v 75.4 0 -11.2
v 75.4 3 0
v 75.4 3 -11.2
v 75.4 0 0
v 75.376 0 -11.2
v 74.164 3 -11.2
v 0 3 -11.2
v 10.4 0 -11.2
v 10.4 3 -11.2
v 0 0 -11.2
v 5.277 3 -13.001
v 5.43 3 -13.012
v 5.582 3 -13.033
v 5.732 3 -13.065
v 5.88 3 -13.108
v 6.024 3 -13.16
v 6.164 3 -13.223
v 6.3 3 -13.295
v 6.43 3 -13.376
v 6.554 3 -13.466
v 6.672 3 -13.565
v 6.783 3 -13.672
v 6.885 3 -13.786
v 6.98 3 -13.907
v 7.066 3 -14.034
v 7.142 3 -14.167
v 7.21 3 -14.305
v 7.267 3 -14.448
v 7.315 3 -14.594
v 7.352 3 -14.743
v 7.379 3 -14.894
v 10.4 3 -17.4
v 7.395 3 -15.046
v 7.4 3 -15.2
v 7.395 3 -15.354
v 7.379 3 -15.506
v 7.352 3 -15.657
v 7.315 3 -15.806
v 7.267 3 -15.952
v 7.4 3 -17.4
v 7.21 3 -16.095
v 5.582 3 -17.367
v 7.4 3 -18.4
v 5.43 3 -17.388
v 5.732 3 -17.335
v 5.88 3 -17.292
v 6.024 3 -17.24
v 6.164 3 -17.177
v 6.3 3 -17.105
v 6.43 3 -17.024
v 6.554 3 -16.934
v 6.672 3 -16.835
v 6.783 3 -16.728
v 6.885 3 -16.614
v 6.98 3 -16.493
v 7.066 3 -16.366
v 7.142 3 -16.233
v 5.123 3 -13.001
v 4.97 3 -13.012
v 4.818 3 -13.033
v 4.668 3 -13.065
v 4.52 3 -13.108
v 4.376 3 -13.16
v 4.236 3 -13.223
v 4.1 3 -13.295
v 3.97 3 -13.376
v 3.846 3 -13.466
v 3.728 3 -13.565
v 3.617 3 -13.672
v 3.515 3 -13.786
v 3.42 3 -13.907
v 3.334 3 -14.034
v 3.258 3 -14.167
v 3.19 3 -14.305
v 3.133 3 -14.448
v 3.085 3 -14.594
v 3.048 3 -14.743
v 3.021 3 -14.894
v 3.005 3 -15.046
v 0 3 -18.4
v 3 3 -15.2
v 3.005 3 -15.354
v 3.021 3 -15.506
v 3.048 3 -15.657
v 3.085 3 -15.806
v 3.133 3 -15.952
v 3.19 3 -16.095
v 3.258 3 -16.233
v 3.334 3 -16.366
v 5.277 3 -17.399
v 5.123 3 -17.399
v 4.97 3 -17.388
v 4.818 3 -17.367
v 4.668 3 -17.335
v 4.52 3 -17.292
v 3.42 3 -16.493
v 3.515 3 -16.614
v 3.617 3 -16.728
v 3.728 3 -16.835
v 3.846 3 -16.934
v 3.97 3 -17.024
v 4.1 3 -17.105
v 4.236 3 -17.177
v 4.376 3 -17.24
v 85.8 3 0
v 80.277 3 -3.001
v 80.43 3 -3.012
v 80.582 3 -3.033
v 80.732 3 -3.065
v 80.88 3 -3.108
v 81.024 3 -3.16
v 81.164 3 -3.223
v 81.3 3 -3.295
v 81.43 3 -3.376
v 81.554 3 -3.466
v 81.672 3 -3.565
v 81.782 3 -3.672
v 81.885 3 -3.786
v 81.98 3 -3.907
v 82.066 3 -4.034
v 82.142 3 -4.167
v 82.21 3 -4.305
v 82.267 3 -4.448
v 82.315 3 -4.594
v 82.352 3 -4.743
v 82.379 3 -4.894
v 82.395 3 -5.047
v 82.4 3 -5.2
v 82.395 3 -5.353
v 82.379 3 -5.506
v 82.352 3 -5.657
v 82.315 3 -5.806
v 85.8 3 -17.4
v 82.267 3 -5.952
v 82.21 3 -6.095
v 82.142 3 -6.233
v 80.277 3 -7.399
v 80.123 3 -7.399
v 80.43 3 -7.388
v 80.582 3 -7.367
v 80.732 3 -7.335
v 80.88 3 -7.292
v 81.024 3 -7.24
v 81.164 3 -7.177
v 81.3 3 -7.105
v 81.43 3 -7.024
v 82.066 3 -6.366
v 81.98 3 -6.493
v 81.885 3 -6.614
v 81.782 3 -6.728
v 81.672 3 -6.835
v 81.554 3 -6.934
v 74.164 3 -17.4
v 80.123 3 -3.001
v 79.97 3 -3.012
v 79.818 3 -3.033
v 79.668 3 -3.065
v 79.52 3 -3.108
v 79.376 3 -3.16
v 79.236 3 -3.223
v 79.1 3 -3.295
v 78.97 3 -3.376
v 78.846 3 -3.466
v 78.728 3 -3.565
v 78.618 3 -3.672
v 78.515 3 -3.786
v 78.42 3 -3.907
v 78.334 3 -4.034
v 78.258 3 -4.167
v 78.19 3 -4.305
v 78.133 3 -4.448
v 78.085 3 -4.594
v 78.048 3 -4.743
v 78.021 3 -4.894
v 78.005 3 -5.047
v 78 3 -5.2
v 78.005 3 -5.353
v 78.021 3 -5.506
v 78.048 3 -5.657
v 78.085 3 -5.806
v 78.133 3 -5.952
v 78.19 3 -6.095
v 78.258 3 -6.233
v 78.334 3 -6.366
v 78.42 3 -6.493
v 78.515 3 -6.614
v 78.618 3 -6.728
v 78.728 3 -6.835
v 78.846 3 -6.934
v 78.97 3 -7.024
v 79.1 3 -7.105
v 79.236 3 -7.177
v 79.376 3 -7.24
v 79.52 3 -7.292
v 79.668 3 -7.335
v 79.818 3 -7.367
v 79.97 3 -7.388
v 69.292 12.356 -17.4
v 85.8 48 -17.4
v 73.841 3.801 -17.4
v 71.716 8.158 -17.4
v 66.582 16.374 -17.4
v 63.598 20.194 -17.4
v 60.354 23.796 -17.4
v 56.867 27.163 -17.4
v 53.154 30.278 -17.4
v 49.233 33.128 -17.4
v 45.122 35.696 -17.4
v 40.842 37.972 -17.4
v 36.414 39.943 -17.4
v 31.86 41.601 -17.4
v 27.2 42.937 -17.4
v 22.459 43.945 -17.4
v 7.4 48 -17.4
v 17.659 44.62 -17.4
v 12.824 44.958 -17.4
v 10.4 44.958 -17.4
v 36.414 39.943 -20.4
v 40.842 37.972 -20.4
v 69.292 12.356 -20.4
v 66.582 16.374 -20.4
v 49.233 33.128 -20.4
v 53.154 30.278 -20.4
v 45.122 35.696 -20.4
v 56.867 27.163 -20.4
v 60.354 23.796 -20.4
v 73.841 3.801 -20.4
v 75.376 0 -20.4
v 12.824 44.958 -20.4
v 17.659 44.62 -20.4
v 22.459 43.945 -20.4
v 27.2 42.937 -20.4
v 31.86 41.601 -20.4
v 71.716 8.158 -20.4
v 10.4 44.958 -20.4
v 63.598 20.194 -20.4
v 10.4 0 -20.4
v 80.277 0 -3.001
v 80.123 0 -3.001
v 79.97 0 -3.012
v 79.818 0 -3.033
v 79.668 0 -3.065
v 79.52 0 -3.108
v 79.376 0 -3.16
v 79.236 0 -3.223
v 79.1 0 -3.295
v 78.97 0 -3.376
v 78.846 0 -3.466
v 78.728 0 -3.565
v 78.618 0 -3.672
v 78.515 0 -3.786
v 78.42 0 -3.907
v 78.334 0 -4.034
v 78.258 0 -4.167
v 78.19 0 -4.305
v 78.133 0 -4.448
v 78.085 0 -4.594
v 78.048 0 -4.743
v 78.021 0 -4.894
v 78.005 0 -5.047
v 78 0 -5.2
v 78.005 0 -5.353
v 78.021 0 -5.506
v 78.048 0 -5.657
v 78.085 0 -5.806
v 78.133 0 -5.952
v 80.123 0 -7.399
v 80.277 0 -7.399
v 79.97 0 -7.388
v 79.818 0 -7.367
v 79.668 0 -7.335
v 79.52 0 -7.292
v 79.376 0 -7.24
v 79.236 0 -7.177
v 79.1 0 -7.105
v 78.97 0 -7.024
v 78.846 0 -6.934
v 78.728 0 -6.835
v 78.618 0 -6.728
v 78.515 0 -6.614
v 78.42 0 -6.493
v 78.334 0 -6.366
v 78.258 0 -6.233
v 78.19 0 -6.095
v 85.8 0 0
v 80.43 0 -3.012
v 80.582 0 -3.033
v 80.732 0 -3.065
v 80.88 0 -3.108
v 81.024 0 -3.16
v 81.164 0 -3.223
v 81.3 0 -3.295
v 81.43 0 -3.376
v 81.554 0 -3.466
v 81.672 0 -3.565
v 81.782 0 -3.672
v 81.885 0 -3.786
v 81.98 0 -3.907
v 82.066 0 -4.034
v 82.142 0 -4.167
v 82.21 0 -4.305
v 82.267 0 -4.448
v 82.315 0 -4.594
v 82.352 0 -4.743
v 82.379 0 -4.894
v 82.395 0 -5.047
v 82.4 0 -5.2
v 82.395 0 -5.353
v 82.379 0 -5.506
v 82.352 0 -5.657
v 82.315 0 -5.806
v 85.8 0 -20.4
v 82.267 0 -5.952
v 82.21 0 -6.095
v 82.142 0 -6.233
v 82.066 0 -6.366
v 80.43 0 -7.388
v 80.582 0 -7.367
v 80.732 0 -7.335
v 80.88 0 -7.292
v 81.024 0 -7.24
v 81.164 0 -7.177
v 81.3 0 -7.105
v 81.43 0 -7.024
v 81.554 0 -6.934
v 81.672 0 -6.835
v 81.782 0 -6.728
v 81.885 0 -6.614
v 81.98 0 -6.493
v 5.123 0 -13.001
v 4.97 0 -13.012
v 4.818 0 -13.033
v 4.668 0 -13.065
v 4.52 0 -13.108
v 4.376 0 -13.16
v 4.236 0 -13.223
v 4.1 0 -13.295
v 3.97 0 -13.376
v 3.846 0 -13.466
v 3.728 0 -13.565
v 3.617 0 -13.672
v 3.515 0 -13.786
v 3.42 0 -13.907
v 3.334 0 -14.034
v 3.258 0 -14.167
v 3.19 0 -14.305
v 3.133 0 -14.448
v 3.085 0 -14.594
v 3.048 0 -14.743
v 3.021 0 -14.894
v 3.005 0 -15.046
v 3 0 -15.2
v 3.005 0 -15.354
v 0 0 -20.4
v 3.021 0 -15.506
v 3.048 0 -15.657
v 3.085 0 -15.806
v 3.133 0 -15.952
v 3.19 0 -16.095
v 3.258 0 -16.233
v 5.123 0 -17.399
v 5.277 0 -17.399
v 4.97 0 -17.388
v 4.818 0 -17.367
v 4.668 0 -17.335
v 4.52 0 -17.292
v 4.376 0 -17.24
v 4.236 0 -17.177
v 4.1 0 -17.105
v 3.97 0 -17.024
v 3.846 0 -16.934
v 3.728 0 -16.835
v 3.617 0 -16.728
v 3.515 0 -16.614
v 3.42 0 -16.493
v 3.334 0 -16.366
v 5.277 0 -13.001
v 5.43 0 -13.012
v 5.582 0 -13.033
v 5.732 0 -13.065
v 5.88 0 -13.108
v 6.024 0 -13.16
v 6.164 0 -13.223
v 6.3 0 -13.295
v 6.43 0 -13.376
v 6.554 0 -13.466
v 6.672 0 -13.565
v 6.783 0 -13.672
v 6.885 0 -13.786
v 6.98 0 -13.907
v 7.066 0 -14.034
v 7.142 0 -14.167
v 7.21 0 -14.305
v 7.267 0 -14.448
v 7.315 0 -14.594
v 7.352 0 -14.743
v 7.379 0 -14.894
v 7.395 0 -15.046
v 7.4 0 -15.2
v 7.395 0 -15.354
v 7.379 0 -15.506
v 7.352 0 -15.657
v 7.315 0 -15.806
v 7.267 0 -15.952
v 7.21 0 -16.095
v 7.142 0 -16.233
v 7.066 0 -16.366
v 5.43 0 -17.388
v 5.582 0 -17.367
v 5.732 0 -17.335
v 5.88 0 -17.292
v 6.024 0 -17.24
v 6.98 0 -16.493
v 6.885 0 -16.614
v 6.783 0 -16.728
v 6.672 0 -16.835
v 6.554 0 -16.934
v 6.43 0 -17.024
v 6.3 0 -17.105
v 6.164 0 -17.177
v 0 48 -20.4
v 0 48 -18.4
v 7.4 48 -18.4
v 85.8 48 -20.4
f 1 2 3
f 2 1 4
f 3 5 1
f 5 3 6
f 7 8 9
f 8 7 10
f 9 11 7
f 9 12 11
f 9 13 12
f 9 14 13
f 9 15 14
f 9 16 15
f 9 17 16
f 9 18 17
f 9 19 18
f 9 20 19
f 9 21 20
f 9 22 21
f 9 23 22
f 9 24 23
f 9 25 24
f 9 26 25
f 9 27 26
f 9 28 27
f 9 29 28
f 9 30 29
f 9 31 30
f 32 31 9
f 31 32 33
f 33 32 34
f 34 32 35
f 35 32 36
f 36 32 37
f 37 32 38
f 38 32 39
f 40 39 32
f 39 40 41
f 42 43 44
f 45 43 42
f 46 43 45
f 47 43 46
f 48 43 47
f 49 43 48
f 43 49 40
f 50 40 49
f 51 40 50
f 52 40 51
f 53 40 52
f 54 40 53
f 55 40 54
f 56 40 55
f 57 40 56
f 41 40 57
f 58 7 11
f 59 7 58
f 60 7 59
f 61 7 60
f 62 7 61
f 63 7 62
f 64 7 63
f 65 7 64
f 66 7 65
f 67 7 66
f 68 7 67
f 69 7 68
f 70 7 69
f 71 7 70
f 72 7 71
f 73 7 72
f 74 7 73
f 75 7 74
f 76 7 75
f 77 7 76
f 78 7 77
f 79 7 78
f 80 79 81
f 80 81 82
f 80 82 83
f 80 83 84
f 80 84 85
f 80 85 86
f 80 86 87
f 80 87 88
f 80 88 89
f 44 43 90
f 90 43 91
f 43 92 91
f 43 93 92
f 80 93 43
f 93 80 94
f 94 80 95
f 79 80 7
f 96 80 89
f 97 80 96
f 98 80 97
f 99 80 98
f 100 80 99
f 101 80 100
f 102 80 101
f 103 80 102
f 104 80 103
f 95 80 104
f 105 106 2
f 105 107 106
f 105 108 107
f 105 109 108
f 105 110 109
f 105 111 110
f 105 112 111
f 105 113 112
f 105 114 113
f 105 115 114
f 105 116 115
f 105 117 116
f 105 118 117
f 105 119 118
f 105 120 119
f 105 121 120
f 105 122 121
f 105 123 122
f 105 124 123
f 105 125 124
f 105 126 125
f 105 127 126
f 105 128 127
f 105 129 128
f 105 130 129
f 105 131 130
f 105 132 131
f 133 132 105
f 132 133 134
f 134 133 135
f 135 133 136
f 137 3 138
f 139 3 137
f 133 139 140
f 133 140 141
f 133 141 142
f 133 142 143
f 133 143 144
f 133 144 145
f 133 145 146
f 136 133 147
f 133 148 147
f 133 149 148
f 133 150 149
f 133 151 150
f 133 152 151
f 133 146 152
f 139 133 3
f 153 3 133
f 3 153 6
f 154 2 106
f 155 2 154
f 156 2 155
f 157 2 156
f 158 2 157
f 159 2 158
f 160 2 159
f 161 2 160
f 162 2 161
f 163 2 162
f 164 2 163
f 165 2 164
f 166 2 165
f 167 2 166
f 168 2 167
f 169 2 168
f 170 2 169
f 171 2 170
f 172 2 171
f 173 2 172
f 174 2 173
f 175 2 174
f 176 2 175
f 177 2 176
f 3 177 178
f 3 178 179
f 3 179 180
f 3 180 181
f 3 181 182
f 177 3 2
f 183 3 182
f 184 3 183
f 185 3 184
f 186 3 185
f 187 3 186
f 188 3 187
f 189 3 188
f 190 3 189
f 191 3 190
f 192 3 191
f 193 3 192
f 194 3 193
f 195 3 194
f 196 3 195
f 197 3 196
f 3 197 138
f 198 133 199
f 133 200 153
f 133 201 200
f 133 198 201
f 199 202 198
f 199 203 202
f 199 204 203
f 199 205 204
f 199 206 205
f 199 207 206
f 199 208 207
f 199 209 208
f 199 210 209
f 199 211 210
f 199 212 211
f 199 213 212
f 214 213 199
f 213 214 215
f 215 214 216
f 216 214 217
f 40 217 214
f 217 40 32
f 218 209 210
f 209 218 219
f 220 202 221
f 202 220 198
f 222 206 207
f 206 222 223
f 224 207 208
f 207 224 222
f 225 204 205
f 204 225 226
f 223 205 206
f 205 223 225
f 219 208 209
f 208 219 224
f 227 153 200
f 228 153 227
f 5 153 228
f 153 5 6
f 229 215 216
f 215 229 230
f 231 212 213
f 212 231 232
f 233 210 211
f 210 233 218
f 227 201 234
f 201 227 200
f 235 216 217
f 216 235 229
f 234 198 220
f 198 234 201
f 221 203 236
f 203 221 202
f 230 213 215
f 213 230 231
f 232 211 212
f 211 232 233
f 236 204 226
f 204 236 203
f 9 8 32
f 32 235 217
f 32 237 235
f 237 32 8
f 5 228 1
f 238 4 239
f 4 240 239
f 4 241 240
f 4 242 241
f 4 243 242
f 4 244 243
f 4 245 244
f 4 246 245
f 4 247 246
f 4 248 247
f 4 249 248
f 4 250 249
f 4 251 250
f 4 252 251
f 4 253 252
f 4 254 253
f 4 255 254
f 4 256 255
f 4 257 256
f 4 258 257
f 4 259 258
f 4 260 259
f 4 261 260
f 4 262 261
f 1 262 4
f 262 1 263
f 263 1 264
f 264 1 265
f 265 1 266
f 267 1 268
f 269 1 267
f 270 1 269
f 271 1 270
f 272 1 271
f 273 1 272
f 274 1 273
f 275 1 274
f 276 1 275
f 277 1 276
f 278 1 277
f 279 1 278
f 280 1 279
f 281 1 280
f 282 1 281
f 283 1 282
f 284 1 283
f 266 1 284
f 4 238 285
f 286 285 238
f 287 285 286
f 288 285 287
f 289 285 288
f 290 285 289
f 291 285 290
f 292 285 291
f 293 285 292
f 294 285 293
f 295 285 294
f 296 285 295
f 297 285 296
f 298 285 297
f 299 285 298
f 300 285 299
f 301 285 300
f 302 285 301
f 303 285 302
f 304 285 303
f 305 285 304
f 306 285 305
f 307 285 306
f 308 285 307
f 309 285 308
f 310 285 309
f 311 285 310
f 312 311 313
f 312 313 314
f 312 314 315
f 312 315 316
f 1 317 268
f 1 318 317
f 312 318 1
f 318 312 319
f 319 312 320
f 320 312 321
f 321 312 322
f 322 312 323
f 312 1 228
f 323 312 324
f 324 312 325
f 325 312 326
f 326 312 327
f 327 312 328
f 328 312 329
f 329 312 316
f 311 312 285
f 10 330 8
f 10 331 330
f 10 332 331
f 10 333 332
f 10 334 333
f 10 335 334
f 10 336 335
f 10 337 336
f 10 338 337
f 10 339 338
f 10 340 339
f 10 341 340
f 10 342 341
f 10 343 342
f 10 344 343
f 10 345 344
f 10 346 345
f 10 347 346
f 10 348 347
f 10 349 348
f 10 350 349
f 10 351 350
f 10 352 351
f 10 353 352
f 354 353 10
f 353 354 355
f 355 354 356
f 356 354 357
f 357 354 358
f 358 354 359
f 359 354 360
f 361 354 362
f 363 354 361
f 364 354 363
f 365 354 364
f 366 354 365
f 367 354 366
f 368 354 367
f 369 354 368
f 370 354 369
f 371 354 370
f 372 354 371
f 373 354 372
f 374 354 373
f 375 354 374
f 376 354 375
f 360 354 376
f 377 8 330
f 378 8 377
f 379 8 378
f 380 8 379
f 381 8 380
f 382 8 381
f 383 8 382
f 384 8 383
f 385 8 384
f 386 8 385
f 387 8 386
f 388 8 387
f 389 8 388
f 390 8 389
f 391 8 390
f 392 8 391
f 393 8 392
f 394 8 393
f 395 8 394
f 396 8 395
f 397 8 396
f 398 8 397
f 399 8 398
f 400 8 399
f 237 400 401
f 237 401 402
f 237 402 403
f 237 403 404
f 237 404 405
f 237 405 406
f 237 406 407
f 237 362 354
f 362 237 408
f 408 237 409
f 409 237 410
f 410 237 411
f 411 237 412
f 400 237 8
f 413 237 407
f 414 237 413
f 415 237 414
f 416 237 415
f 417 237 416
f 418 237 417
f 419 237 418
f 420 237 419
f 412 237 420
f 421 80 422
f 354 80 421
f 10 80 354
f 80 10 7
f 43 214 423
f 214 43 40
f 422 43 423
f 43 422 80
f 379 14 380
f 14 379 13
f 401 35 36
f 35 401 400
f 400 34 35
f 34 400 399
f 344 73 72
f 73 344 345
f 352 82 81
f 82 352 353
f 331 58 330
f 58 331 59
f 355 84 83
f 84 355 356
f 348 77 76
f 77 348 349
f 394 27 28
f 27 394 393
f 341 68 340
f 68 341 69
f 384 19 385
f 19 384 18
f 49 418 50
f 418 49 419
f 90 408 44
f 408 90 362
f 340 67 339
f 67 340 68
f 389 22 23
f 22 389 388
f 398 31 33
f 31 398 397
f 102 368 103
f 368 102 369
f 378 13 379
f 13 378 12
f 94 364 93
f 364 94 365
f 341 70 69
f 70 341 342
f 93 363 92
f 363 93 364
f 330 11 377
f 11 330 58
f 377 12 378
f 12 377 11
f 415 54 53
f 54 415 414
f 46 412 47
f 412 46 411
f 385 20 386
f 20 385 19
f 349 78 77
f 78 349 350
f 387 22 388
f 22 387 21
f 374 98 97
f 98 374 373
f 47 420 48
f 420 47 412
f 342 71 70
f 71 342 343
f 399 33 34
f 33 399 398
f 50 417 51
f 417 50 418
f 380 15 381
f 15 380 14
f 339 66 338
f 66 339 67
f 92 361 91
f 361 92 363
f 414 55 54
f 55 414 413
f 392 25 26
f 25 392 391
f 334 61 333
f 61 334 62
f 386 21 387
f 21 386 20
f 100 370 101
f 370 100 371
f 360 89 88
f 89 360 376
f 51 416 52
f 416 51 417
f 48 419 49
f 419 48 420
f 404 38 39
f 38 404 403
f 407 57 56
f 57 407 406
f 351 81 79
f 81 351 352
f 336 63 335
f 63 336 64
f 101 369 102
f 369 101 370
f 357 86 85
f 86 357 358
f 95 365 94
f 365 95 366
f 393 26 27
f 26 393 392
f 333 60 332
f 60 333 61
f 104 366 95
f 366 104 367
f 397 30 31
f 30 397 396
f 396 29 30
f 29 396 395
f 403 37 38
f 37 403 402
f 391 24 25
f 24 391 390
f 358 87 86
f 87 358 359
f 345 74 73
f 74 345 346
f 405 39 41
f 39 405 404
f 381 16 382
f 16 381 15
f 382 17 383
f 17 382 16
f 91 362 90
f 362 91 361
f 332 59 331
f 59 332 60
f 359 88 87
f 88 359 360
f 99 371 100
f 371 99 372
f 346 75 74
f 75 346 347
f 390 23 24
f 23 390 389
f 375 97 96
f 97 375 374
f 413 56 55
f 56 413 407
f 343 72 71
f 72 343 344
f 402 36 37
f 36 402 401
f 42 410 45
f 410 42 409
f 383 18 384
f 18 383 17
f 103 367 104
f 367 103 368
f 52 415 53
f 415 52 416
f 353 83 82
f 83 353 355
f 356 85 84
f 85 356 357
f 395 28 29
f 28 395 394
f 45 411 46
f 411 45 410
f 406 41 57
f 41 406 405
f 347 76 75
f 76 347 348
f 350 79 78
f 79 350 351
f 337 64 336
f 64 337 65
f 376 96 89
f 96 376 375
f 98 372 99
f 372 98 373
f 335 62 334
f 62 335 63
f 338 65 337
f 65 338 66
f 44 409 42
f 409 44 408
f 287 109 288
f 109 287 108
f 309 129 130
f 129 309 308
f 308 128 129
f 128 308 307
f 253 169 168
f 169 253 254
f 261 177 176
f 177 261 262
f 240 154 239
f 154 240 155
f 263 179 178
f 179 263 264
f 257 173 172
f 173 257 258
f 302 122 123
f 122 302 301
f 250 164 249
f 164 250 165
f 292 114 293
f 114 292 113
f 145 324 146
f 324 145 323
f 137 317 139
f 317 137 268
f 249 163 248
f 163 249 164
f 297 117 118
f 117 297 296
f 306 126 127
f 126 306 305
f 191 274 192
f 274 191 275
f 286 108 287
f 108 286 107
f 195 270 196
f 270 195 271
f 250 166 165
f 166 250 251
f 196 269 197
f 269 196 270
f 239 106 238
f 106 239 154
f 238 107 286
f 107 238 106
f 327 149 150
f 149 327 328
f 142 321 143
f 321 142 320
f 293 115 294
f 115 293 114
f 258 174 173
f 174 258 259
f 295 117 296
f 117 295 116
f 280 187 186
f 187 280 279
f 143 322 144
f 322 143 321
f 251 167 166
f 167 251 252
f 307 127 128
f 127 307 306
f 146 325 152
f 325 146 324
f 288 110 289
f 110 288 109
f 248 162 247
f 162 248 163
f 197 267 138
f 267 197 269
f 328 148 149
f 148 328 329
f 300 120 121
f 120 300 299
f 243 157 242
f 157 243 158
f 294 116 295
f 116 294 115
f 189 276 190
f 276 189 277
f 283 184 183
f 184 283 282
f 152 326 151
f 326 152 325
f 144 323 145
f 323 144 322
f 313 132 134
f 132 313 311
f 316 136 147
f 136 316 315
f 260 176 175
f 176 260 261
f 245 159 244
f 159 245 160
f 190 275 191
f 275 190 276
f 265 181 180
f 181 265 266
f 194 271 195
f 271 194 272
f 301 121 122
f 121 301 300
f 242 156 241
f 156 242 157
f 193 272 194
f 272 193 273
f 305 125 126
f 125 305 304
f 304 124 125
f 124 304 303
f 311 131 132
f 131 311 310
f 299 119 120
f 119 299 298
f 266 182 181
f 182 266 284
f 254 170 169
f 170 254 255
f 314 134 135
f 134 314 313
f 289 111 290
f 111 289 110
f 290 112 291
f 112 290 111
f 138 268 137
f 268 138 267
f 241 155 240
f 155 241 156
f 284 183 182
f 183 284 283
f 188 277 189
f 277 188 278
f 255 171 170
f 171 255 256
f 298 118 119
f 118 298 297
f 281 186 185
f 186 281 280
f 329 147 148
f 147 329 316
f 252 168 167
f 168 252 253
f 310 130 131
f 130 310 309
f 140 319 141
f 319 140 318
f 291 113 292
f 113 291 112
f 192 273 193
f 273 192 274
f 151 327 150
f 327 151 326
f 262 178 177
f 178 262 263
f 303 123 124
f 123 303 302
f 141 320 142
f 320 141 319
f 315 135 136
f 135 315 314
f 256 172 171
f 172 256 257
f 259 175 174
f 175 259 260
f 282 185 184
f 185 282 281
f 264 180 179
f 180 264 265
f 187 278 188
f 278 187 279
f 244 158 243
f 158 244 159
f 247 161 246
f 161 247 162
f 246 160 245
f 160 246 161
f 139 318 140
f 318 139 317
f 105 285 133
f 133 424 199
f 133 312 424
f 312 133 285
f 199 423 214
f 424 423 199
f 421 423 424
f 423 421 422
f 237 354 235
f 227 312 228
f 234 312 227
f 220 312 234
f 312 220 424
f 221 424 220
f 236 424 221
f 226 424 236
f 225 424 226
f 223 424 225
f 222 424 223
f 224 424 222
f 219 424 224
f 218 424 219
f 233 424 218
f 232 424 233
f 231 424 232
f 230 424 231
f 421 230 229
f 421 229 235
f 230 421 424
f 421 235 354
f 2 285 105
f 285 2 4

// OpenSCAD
$fn=90;

widthBetweenHole = 75;
depthBetweenHole = 10;
heightAllowance = 45;
holeDiameter = 4.4;
angleWidth = 65;
angleDiamteter = pow(angleWidth,2)
    /heightAllowance
    +heightAllowance;

thickness = 3;
width = angleWidth+holeDiameter*2+thickness*4;
depth = depthBetweenHole+holeDiameter+thickness*2;
height = heightAllowance+thickness;

startHoleX = thickness+holeDiameter/2;
startHoleY = depth-(thickness+holeDiameter/2);


rotate([-90,0,0])
difference () {
//main pice
cube([
    width,
    depth,
    height]);


union() {
    
// removal front
union () {
translate([
    -1,
    -1,
    -1])
cube([
    angleWidth+holeDiameter+thickness*2+1,
    depthBetweenHole+holeDiameter/2,
    height+2]);

translate([
    1,
    -1,
    thickness])
cube([
    width,
    depth-thickness+1,
    height]);
}

// removal for angel
difference () {
translate([
    thickness*2+holeDiameter,
    depth+1,
    heightAllowance-angleDiamteter/2])
rotate([90,0,0])
cylinder(
    h = depth/2+1,
    d = angleDiamteter);

cube([
    holeDiameter+thickness*2,
    depth+1,
    height]);

}
// removal mounting left
translate([
    -1,
    depth-(holeDiameter+thickness*2),
    thickness])
cube([
    holeDiameter+thickness+1,
    holeDiameter+thickness+1,
    height]);


// removal mounting right
translate([
    width-(holeDiameter+thickness),
    -1,
    thickness])
cube([
    holeDiameter+thickness+1,
    depth-thickness+1,
    height]);


// hole left
translate([
    startHoleX,
    startHoleY,
    -1])
cylinder(
    h = thickness+2,
    d = holeDiameter);

// hole right
translate([
    startHoleX+widthBetweenHole,
    startHoleY-depthBetweenHole,
    -1])
cylinder(
    h = thickness+2,
    d = holeDiameter);    


}}
